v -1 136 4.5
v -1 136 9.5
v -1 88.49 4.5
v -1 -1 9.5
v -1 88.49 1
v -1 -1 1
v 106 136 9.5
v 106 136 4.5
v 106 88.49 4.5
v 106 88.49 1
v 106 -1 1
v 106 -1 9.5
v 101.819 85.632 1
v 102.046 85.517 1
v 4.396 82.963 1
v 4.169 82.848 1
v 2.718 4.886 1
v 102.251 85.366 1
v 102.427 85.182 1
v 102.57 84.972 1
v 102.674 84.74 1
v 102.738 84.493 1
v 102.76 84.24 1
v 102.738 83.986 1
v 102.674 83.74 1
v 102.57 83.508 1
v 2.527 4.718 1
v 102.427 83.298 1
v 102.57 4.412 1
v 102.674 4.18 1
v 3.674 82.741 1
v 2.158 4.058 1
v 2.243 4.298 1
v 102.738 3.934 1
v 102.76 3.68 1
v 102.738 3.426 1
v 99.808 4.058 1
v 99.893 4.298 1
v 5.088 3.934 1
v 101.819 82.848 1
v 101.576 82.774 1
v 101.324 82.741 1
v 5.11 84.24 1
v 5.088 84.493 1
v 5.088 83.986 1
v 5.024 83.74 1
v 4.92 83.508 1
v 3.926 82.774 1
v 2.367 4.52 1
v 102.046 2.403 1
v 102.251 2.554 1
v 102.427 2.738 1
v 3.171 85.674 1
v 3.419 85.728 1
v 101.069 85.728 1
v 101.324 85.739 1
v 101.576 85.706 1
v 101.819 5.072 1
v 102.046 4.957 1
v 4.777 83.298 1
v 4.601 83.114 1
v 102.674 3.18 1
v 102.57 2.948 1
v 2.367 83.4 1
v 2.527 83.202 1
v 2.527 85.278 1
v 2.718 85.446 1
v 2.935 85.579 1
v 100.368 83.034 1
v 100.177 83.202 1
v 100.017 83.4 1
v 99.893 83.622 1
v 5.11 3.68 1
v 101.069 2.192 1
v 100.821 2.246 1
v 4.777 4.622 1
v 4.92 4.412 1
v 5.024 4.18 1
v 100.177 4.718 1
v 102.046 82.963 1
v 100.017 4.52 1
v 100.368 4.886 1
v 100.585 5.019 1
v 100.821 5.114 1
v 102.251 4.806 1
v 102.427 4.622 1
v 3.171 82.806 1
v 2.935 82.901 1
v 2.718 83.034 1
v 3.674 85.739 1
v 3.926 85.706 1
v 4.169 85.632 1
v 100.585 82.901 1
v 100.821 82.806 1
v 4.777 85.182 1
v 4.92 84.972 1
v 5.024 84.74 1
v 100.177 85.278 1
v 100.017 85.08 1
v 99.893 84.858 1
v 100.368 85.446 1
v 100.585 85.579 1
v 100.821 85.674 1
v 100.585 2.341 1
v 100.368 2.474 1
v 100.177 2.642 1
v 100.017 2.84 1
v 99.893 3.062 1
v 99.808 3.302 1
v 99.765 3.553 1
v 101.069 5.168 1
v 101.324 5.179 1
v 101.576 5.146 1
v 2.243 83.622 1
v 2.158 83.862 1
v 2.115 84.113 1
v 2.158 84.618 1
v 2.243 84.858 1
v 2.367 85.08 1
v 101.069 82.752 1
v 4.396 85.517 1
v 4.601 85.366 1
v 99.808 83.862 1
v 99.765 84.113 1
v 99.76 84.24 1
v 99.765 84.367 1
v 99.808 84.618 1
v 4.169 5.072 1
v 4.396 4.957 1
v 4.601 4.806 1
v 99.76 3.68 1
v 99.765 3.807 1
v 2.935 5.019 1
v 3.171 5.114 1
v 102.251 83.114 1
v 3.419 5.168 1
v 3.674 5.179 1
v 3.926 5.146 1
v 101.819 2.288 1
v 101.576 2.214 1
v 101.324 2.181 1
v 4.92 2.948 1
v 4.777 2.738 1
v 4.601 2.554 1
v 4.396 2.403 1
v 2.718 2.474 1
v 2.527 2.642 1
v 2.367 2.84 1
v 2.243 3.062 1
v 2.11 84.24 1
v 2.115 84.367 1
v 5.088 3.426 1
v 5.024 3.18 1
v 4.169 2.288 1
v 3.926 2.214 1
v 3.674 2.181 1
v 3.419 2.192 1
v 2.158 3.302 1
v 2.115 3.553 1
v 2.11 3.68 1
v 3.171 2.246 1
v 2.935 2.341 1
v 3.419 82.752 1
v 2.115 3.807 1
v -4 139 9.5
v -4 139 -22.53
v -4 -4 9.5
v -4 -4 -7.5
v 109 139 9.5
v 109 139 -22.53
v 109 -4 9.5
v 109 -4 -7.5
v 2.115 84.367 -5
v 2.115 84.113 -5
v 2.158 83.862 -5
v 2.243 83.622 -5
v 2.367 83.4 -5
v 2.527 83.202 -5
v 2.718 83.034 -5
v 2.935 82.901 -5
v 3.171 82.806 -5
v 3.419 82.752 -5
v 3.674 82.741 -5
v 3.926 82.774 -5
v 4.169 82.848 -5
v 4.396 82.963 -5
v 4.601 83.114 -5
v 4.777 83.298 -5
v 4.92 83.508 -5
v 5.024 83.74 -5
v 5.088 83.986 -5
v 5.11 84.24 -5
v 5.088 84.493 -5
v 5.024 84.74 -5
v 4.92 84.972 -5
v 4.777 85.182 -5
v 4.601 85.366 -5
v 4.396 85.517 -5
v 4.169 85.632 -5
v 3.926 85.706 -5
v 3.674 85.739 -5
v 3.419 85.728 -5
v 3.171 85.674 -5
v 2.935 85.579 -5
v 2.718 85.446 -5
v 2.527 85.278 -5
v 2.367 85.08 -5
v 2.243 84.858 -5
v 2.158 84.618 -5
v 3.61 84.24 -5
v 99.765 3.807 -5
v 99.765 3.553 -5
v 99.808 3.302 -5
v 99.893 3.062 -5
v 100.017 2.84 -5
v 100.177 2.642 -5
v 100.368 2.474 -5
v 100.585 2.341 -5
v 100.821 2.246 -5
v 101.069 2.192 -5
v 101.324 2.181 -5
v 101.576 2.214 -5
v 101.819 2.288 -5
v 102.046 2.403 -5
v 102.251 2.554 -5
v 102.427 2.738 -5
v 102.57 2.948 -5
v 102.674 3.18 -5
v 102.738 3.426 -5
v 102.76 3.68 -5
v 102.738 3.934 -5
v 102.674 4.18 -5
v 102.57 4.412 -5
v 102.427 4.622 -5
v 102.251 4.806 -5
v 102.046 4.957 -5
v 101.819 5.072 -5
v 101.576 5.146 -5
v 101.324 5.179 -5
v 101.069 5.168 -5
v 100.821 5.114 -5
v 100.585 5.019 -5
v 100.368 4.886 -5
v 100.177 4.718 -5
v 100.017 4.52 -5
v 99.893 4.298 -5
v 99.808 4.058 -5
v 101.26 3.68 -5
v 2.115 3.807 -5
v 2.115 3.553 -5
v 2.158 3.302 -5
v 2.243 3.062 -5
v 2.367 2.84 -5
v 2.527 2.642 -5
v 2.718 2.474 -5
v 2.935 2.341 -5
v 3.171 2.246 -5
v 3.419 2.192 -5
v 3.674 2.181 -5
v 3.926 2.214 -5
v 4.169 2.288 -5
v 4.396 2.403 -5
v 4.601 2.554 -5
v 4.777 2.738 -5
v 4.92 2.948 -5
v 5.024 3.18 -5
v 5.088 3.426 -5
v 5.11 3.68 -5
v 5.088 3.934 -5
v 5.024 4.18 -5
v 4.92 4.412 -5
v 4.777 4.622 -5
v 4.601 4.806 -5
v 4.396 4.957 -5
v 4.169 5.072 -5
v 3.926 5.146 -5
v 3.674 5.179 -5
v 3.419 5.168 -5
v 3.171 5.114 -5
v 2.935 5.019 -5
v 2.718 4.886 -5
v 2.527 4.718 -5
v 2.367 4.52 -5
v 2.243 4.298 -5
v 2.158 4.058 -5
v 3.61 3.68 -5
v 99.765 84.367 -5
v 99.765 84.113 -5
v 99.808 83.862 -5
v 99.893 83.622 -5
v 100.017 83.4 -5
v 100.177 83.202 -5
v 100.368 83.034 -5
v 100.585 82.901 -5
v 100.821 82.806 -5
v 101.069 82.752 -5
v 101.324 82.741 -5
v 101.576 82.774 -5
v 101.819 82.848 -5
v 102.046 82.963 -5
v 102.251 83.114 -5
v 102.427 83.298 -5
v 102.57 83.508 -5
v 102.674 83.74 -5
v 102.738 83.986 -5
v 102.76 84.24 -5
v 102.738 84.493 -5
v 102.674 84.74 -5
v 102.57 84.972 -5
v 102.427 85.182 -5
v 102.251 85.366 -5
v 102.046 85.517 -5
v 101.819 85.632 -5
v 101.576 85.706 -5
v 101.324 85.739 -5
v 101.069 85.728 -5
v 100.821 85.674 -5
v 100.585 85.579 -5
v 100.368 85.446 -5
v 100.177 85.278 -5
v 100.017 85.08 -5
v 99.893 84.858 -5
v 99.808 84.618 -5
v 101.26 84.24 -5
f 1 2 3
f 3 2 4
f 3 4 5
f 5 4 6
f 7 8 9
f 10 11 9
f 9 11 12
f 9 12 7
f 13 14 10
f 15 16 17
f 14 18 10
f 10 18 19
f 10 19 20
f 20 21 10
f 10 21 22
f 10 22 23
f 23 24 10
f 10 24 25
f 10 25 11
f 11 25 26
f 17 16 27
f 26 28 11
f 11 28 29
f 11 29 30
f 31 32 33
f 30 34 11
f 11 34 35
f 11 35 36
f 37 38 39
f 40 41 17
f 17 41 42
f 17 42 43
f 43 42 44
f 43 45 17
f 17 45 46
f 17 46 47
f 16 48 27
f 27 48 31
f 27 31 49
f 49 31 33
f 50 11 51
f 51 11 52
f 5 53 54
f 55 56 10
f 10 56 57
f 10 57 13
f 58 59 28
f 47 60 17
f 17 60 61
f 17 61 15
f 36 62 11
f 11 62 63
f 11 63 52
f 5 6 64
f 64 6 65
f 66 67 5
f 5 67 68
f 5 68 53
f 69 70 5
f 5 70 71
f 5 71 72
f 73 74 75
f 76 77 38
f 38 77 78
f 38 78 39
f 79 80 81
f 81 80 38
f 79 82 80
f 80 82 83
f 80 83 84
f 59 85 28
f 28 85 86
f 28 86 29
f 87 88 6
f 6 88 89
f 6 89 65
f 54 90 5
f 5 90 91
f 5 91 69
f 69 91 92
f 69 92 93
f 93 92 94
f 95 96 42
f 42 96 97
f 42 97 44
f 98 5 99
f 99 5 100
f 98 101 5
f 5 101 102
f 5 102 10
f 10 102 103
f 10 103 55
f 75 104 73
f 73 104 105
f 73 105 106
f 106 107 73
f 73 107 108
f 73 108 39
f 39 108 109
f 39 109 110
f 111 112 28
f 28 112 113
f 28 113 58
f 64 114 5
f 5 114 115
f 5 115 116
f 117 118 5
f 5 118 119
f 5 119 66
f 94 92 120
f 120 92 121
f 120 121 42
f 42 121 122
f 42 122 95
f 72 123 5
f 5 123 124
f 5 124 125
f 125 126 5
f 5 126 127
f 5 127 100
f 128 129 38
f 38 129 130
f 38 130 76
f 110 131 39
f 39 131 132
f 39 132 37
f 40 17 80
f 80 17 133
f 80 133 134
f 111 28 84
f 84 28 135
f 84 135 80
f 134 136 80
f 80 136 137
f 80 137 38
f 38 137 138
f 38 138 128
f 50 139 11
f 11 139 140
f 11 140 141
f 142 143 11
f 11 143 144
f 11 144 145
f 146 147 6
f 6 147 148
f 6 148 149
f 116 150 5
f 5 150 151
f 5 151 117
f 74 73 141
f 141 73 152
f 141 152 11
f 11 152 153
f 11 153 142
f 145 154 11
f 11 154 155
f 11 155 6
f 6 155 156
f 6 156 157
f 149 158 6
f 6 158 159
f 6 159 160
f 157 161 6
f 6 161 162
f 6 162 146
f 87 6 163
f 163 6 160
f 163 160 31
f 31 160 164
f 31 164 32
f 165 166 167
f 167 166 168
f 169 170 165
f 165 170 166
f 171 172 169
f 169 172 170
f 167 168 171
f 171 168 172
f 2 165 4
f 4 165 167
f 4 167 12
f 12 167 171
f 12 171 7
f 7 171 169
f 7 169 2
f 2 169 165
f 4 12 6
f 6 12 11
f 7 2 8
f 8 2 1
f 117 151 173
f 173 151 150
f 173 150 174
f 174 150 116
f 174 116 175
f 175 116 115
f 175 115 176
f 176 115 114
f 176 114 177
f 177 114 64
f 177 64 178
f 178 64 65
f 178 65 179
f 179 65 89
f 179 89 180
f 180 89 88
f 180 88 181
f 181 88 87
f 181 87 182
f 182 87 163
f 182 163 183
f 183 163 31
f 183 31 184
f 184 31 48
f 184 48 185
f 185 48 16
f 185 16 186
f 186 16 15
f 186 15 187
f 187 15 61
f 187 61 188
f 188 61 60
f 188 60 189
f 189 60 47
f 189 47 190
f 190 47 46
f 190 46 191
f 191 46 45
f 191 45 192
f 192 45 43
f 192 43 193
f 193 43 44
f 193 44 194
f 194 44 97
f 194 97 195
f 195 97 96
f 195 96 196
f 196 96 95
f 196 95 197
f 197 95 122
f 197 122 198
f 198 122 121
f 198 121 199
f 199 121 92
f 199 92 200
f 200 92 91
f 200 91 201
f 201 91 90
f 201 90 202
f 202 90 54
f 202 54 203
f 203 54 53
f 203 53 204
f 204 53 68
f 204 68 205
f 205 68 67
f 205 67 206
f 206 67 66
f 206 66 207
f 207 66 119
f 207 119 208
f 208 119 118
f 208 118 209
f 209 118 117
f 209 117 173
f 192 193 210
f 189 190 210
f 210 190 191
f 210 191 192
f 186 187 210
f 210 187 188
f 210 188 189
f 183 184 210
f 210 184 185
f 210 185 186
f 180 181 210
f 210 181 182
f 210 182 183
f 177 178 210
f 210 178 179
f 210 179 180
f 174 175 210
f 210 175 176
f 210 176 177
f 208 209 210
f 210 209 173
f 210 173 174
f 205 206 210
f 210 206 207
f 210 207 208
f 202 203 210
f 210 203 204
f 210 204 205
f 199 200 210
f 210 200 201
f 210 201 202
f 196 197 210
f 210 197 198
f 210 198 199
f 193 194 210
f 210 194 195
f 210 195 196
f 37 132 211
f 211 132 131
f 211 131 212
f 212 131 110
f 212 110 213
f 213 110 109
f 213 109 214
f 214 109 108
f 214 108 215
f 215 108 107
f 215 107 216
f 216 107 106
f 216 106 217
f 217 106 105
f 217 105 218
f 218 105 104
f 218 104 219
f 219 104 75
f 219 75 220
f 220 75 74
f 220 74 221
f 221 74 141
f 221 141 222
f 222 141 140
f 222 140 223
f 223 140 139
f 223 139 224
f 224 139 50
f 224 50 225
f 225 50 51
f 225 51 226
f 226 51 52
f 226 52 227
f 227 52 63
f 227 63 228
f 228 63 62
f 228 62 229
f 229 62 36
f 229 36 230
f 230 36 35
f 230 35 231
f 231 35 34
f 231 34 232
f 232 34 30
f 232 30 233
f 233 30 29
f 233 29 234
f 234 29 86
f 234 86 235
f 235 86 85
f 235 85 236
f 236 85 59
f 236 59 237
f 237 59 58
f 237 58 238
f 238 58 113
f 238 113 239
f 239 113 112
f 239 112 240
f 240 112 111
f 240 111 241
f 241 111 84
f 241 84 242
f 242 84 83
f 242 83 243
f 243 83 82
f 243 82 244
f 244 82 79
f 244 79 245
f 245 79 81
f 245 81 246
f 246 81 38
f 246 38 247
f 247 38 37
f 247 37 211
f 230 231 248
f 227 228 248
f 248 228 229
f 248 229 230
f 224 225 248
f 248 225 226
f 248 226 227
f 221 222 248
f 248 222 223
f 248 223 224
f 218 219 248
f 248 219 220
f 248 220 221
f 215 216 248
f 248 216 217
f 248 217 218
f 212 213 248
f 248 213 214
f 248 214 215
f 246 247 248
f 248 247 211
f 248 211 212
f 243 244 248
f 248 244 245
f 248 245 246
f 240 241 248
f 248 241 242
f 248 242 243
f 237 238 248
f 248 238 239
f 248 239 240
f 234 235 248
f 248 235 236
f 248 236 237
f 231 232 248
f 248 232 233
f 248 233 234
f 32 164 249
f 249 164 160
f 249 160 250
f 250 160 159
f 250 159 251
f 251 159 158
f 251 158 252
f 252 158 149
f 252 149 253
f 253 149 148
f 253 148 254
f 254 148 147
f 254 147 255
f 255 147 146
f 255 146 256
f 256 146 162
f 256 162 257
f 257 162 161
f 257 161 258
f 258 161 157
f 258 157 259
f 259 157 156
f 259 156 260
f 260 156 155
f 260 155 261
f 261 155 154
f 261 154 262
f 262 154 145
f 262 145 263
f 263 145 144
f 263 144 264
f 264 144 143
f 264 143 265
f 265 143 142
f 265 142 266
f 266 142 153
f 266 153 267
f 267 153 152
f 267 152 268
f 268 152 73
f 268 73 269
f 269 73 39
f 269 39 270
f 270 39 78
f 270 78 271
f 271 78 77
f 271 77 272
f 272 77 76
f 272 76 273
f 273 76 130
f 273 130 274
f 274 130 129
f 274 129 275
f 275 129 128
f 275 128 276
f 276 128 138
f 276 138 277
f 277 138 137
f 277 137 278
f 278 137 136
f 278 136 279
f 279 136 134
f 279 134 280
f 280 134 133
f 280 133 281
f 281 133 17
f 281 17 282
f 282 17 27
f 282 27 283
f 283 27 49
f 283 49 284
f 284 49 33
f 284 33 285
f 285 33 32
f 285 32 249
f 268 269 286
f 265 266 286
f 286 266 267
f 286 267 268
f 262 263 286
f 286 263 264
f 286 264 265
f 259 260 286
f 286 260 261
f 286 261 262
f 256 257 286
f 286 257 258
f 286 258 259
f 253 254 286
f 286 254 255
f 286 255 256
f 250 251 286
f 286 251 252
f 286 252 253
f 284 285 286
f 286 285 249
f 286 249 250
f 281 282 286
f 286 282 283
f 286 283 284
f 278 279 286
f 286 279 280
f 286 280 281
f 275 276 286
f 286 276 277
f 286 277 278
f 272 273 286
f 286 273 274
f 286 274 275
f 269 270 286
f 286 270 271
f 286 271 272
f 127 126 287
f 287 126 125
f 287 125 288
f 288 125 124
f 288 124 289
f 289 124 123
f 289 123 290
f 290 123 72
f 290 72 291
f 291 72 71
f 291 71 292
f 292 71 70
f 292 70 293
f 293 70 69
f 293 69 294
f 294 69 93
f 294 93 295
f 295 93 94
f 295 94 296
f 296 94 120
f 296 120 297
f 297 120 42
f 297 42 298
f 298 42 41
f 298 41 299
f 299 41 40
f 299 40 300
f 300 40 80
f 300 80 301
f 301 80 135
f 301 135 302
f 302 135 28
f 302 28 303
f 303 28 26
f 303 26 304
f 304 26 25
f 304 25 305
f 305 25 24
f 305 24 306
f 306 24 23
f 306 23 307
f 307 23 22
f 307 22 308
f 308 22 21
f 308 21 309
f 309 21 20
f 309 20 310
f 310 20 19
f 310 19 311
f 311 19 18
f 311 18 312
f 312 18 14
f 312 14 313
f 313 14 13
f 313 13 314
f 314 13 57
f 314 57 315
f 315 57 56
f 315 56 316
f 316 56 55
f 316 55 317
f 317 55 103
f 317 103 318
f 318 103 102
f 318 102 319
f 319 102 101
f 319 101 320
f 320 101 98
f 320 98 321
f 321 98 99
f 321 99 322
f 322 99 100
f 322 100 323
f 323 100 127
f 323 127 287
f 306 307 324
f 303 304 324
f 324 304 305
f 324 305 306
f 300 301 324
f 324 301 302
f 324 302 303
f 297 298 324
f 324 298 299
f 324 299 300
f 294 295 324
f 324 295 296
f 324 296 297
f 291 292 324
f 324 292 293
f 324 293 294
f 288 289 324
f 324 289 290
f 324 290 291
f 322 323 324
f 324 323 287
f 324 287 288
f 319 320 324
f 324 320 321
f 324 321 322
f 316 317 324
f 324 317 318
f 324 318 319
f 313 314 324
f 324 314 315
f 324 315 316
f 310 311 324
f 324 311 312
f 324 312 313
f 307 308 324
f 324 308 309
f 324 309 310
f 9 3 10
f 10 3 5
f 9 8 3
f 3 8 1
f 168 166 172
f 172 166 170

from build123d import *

# Parameters (mm, degrees)
SKETCH_1_W               = 105
SKETCH_1_H               = 135
SKETCH_1_R               = 1.5
EXTRUDE_1_DEPTH          = 1
SKETCH_3_W               = 113
SKETCH_3_H               = 143
SKETCH_3_W_2             = 107
SKETCH_3_H_2             = 137
EXTRUDE_2_DEPTH          = 8.5
SKETCH_3_3_W             = 113
SKETCH_3_3_H             = 143
EXTRUDE_3_DEPTH          = 8.5
CUT_EXTRUDE_1_DEPTH      = 6
CUT_EXTRUDE_1_DEPTH_BACK = 5
SKETCH_1_2_R             = 1.5
SKETCH_4_W               = 107
SKETCH_4_H               = 47.51
EXTRUDE_4_DEPTH          = 3.5
EXTRUDE_5_DEPTH          = 113


with BuildPart() as part:
    # 草圖1 → 填料-伸長1 (new body)
    with BuildSketch(Plane.XY):
        with Locations((52.5, 67.5)):
            Rectangle(SKETCH_1_W, SKETCH_1_H)
        with Locations((3.61, 3.68)):
            Circle(SKETCH_1_R, mode=Mode.SUBTRACT)
        with Locations((101.26, 3.68)):
            Circle(SKETCH_1_R, mode=Mode.SUBTRACT)
        with Locations((3.61, 84.24)):
            Circle(SKETCH_1_R, mode=Mode.SUBTRACT)
        with Locations((101.26, 84.24)):
            Circle(SKETCH_1_R, mode=Mode.SUBTRACT)
    extrude(amount=EXTRUDE_1_DEPTH)



with BuildPart() as body_2:
    # 草圖3 → 填料-伸長2 (new body)
    with BuildSketch(Plane.XY.offset(1)):
        with Locations((52.5, 67.5)):
            Rectangle(SKETCH_3_W, SKETCH_3_H)
        with Locations((52.5, 67.5)):
            Rectangle(SKETCH_3_W_2, SKETCH_3_H_2, mode=Mode.SUBTRACT)
    extrude(amount=EXTRUDE_2_DEPTH)


with BuildPart() as part_1:
    add(part.part)

    add(body_2.part)  # 填料-伸長3 merges body 2
    # 草圖3<3> → 填料-伸長3 (add)
    with BuildSketch(Plane.XY.offset(1)):
        with Locations((52.5, 67.5)):
            Rectangle(SKETCH_3_3_W, SKETCH_3_3_H)
    extrude(amount=-EXTRUDE_3_DEPTH)

    # 草圖1<2> → 除料-伸長1 (cut, two sides: drawn at the far end of the back side and taken through both)
    with BuildSketch(Plane.XY.offset(-CUT_EXTRUDE_1_DEPTH_BACK)):
        with Locations((3.61, 3.68)):
            Circle(SKETCH_1_2_R)
        with Locations((101.26, 3.68)):
            Circle(SKETCH_1_2_R)
        with Locations((3.61, 84.24)):
            Circle(SKETCH_1_2_R)
        with Locations((101.26, 84.24)):
            Circle(SKETCH_1_2_R)
    extrude(amount=CUT_EXTRUDE_1_DEPTH + CUT_EXTRUDE_1_DEPTH_BACK, mode=Mode.SUBTRACT)

    # 草圖4 → 填料-伸長4 (add)
    with BuildSketch(Plane.XY.offset(1)):
        with Locations((52.5, 112.245)):
            Rectangle(SKETCH_4_W, SKETCH_4_H)
    extrude(amount=EXTRUDE_4_DEPTH)

    # 草圖5 → 填料-伸長5 (add)
    with BuildSketch(Plane.ZY.offset(4)):
        Polygon((-7.5, 139), (-22.529905643, 139), (-7.5, -4), align=None)
    extrude(amount=-EXTRUDE_5_DEPTH)


solid = part_1.part
